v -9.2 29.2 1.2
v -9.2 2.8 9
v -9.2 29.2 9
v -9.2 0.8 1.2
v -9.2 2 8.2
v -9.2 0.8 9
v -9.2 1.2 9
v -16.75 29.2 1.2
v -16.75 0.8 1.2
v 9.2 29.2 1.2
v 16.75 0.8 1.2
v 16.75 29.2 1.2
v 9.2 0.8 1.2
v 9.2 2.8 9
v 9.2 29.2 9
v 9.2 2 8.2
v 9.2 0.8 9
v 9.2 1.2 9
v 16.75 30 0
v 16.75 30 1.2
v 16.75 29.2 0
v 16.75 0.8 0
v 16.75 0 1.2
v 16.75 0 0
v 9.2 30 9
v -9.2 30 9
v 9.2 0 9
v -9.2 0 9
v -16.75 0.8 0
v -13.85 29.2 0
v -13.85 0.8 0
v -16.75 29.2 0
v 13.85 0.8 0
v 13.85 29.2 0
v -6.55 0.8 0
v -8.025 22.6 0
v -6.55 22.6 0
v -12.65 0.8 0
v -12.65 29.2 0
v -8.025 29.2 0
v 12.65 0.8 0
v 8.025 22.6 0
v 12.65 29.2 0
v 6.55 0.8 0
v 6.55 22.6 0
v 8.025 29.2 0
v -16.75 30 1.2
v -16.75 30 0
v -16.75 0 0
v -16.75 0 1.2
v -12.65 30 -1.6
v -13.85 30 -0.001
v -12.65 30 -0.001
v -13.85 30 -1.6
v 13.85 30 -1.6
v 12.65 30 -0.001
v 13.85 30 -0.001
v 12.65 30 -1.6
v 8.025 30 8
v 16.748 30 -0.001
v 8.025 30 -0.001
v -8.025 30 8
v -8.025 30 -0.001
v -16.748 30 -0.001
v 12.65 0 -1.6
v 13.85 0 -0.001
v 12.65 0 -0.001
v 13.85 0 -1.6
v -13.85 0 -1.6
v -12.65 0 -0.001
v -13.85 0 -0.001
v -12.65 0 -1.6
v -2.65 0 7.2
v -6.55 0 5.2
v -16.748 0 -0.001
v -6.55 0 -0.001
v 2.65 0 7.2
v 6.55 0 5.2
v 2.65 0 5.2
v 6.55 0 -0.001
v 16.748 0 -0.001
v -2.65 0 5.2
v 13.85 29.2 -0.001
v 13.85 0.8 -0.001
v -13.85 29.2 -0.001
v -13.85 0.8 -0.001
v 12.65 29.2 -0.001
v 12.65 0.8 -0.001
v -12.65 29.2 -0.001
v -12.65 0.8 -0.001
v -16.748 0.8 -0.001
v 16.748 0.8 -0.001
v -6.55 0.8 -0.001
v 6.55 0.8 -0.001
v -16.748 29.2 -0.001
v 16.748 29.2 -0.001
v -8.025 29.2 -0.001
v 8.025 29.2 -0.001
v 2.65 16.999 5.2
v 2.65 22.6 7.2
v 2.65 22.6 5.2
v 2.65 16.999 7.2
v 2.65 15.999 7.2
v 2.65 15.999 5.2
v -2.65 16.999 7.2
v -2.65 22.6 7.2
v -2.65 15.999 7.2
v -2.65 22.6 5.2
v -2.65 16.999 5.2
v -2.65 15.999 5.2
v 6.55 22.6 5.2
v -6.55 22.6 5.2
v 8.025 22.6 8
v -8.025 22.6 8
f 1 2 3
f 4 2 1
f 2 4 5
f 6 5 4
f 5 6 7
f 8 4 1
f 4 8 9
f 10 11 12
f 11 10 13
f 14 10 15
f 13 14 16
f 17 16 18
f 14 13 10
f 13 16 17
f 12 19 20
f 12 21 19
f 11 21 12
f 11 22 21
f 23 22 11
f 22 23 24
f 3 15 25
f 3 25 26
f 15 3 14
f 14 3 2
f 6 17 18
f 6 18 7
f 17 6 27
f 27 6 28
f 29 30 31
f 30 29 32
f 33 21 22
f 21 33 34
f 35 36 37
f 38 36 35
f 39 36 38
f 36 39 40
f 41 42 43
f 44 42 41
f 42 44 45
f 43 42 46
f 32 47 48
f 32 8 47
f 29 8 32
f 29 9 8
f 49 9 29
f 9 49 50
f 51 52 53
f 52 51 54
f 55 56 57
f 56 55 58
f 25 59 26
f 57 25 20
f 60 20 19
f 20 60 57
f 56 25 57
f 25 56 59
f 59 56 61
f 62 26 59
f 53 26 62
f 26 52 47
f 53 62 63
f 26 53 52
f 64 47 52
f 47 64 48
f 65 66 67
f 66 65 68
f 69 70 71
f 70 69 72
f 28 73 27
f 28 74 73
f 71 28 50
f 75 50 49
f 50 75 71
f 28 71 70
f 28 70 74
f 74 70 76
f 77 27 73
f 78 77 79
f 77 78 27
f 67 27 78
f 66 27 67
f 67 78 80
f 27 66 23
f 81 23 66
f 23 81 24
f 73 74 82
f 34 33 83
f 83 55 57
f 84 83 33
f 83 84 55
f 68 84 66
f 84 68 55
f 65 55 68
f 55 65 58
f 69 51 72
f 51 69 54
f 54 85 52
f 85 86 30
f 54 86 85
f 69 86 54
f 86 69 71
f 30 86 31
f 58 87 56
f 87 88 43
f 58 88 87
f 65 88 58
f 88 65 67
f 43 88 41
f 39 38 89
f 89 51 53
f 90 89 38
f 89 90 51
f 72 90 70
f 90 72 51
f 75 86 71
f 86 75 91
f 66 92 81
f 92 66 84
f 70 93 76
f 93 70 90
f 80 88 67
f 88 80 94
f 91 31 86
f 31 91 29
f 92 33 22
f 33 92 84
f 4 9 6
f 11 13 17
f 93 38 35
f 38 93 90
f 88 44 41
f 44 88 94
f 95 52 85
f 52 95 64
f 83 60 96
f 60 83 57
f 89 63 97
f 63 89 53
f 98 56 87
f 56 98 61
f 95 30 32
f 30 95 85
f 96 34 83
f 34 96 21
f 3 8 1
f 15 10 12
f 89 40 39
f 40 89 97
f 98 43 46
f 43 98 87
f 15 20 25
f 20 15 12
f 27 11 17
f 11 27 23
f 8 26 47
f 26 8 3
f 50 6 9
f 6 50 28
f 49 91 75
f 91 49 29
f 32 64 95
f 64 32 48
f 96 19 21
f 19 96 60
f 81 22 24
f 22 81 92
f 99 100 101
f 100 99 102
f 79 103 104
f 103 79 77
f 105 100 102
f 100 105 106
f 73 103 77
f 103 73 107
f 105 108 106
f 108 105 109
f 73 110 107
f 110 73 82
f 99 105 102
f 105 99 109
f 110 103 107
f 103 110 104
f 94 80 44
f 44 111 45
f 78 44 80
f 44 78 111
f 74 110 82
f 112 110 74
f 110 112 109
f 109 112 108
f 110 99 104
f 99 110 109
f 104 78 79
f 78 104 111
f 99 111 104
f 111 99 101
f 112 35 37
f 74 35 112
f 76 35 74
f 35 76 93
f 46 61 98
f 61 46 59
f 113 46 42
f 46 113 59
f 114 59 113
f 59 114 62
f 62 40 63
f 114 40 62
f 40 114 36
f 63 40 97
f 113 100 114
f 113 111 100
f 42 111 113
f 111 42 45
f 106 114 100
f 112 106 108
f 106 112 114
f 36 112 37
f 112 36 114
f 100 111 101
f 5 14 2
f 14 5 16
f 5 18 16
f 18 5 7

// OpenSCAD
// untested

e=.001;

jig_h=9;
tunnel_w=33.5;
m=.15;
plug_w=12.8;
plug_h=5.2;
plug_d=7.6;
clamp_w=5;
clamp_h=2;
pcb_w=25;
pcb_h=1.6;
front_d=15;
border=1.2;
push_border=.8;

jig_d=30;

conn_w=15.6;
conn_clearance_h=8;
conn_d=10;

module midx_cube(pos)
{
	translate([-pos.x/2, 0, 0])
	cube(pos);
}

module hat()
{
difference()
{
midx_cube([tunnel_w, jig_d, jig_h]);
for (x=[-1,1])
{
	translate([x*19.2,-e,border])
		midx_cube([20,jig_d+1,20]);

}
}

difference()
{
translate([0,0,-pcb_h])
midx_cube([pcb_w+2*m+border*2, jig_d, pcb_h+e]);
translate([0,-e,-pcb_h-e])
midx_cube([pcb_w+2*m, jig_d+2*e, pcb_h+2*e]);

}

}

difference()
{
union()
{
hat();
intersection()
{
hull()hat();
union()
{
translate([0,-e,-e])
midx_cube([tunnel_w+1, push_border+e, jig_h+1]);
translate([0,jig_d-push_border,-e])
midx_cube([tunnel_w+1, push_border+e, jig_h+1]);

}
}
}
translate([0,-e,-e])
{
midx_cube([plug_w+2*m,front_d+plug_d+e*2,plug_h+e]);
difference()
{
midx_cube([clamp_w+2*m,front_d+plug_d+2*e,clamp_h+plug_h+e]);
translate([0,front_d+1,clamp_h+plug_h-2])
midx_cube([clamp_w+1+2*m,1,2+e]);

}
}


translate([0, front_d+plug_d,-e])
midx_cube([conn_w+3*m, conn_d, conn_clearance_h+e]);


translate([0,2,8.2])
rotate([45,0,0])
midx_cube([20,2,2]);
}
